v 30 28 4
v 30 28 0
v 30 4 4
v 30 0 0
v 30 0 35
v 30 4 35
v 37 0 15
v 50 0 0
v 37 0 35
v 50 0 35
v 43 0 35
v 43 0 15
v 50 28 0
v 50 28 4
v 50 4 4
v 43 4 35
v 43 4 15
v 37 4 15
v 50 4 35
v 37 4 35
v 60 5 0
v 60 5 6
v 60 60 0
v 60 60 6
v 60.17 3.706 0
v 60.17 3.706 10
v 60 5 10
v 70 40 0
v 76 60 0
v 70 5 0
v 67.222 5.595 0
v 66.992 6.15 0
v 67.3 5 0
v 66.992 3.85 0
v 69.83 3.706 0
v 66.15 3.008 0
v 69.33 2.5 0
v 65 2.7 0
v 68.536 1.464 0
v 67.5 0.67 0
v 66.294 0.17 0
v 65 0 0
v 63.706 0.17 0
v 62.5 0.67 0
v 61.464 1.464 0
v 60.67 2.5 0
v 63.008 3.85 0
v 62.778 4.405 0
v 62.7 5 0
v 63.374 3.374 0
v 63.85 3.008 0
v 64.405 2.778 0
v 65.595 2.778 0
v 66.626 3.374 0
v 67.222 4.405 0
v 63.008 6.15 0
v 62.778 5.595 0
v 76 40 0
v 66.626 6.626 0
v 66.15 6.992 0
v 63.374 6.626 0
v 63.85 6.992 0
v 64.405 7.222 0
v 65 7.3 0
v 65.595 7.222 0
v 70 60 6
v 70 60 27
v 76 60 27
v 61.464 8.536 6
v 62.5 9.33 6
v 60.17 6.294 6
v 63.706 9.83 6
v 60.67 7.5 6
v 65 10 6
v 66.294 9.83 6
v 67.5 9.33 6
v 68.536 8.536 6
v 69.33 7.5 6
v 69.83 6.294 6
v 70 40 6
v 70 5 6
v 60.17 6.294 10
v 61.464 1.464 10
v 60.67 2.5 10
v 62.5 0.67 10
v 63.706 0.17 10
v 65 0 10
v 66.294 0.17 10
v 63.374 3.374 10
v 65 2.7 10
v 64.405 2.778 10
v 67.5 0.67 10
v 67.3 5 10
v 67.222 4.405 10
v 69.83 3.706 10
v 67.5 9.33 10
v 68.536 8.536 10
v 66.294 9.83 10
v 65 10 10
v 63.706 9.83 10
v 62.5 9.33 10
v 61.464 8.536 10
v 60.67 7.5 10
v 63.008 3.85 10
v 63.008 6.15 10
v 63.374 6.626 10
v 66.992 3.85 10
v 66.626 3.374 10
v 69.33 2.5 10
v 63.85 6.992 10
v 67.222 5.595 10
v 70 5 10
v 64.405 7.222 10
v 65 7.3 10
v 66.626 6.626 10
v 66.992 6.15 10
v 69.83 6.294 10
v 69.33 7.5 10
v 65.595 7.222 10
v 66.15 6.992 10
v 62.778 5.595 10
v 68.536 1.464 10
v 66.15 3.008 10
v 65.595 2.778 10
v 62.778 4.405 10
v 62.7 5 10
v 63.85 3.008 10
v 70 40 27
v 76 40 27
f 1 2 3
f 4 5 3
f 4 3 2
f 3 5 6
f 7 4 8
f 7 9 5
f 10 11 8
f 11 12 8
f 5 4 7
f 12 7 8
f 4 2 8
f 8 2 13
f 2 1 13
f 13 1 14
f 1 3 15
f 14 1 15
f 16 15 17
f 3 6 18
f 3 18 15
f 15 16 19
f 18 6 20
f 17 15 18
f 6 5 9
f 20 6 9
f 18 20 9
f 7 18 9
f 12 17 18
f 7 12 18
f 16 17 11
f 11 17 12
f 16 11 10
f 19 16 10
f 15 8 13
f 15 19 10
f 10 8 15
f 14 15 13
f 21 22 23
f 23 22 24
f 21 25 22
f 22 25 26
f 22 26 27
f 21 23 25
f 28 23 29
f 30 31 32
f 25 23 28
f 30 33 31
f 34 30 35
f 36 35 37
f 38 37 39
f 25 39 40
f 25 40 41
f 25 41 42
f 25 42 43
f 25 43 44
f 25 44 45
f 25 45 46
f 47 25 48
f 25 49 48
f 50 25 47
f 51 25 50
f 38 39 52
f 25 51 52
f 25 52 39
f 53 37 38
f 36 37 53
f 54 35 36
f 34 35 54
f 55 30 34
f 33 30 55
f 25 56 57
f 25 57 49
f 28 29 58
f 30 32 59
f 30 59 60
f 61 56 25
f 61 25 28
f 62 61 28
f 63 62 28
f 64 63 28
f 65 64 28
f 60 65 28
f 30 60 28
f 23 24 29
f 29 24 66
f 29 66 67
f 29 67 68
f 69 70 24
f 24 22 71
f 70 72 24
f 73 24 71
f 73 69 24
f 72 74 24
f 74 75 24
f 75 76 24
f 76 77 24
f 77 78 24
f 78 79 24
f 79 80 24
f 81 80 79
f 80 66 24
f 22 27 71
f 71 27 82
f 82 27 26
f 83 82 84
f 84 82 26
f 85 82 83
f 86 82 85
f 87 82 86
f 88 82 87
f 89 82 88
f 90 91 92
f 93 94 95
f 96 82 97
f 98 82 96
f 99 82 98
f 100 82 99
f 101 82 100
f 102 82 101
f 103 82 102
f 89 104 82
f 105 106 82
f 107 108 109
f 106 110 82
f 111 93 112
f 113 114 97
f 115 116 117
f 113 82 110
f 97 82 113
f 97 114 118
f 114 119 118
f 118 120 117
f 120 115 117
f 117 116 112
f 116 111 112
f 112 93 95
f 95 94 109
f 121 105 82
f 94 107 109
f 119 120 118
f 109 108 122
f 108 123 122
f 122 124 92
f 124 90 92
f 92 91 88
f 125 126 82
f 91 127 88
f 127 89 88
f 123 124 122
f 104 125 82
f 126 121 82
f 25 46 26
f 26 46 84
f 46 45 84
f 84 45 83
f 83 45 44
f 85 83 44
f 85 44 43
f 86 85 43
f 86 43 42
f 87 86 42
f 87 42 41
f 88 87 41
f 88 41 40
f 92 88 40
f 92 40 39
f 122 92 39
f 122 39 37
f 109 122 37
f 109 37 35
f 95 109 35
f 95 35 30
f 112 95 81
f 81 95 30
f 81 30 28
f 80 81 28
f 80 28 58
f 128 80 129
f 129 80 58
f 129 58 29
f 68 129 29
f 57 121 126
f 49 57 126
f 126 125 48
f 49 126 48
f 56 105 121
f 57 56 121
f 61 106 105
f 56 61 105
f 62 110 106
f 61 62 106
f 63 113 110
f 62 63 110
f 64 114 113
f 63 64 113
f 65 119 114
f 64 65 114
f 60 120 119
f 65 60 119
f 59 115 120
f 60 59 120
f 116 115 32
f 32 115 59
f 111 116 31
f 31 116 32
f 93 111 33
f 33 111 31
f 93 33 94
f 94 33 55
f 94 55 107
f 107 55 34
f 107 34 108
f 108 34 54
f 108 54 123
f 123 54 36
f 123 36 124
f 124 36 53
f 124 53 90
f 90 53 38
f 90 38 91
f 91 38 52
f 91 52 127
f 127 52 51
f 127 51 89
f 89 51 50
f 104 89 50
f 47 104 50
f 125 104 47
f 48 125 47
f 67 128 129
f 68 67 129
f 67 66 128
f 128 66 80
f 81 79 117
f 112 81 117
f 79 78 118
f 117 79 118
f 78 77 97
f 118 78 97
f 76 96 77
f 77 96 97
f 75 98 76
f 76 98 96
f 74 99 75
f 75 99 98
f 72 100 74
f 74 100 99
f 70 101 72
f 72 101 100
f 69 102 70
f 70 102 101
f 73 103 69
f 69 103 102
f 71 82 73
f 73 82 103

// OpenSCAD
//ymount();
translate([30,0,0])zmount();

//Y Mount
module ymount() {
difference(){
	cube([20,25,4]);
	translate([7,7,0])cube([6,25,5]);
}
}

//Z mount
module zmount() {
	cube([20,28,4]);
	difference() {
		translate([0,0,0])cube([20,4,35]);
		translate([7,0,15])cube([6,5,25]);
	}
	difference(){
		union(){
			translate([30,5,0])cube([10,55,6]);
			translate([35,5,0])cylinder(r=5,h=10,$fn=24);
			translate([40,40,0])cube([6,20,27]);
		}
		translate([35,5,0])rotate([0,0,0])cylinder(r=2.3,h=20,$fn=24);
//		translate([35,46,22])rotate([0,90,0])cylinder(r=1.5,h=20,$fn=24);
//		translate([35,54,22])rotate([0,90,0])cylinder(r=1.5,h=20,$fn=24);
	}
}
